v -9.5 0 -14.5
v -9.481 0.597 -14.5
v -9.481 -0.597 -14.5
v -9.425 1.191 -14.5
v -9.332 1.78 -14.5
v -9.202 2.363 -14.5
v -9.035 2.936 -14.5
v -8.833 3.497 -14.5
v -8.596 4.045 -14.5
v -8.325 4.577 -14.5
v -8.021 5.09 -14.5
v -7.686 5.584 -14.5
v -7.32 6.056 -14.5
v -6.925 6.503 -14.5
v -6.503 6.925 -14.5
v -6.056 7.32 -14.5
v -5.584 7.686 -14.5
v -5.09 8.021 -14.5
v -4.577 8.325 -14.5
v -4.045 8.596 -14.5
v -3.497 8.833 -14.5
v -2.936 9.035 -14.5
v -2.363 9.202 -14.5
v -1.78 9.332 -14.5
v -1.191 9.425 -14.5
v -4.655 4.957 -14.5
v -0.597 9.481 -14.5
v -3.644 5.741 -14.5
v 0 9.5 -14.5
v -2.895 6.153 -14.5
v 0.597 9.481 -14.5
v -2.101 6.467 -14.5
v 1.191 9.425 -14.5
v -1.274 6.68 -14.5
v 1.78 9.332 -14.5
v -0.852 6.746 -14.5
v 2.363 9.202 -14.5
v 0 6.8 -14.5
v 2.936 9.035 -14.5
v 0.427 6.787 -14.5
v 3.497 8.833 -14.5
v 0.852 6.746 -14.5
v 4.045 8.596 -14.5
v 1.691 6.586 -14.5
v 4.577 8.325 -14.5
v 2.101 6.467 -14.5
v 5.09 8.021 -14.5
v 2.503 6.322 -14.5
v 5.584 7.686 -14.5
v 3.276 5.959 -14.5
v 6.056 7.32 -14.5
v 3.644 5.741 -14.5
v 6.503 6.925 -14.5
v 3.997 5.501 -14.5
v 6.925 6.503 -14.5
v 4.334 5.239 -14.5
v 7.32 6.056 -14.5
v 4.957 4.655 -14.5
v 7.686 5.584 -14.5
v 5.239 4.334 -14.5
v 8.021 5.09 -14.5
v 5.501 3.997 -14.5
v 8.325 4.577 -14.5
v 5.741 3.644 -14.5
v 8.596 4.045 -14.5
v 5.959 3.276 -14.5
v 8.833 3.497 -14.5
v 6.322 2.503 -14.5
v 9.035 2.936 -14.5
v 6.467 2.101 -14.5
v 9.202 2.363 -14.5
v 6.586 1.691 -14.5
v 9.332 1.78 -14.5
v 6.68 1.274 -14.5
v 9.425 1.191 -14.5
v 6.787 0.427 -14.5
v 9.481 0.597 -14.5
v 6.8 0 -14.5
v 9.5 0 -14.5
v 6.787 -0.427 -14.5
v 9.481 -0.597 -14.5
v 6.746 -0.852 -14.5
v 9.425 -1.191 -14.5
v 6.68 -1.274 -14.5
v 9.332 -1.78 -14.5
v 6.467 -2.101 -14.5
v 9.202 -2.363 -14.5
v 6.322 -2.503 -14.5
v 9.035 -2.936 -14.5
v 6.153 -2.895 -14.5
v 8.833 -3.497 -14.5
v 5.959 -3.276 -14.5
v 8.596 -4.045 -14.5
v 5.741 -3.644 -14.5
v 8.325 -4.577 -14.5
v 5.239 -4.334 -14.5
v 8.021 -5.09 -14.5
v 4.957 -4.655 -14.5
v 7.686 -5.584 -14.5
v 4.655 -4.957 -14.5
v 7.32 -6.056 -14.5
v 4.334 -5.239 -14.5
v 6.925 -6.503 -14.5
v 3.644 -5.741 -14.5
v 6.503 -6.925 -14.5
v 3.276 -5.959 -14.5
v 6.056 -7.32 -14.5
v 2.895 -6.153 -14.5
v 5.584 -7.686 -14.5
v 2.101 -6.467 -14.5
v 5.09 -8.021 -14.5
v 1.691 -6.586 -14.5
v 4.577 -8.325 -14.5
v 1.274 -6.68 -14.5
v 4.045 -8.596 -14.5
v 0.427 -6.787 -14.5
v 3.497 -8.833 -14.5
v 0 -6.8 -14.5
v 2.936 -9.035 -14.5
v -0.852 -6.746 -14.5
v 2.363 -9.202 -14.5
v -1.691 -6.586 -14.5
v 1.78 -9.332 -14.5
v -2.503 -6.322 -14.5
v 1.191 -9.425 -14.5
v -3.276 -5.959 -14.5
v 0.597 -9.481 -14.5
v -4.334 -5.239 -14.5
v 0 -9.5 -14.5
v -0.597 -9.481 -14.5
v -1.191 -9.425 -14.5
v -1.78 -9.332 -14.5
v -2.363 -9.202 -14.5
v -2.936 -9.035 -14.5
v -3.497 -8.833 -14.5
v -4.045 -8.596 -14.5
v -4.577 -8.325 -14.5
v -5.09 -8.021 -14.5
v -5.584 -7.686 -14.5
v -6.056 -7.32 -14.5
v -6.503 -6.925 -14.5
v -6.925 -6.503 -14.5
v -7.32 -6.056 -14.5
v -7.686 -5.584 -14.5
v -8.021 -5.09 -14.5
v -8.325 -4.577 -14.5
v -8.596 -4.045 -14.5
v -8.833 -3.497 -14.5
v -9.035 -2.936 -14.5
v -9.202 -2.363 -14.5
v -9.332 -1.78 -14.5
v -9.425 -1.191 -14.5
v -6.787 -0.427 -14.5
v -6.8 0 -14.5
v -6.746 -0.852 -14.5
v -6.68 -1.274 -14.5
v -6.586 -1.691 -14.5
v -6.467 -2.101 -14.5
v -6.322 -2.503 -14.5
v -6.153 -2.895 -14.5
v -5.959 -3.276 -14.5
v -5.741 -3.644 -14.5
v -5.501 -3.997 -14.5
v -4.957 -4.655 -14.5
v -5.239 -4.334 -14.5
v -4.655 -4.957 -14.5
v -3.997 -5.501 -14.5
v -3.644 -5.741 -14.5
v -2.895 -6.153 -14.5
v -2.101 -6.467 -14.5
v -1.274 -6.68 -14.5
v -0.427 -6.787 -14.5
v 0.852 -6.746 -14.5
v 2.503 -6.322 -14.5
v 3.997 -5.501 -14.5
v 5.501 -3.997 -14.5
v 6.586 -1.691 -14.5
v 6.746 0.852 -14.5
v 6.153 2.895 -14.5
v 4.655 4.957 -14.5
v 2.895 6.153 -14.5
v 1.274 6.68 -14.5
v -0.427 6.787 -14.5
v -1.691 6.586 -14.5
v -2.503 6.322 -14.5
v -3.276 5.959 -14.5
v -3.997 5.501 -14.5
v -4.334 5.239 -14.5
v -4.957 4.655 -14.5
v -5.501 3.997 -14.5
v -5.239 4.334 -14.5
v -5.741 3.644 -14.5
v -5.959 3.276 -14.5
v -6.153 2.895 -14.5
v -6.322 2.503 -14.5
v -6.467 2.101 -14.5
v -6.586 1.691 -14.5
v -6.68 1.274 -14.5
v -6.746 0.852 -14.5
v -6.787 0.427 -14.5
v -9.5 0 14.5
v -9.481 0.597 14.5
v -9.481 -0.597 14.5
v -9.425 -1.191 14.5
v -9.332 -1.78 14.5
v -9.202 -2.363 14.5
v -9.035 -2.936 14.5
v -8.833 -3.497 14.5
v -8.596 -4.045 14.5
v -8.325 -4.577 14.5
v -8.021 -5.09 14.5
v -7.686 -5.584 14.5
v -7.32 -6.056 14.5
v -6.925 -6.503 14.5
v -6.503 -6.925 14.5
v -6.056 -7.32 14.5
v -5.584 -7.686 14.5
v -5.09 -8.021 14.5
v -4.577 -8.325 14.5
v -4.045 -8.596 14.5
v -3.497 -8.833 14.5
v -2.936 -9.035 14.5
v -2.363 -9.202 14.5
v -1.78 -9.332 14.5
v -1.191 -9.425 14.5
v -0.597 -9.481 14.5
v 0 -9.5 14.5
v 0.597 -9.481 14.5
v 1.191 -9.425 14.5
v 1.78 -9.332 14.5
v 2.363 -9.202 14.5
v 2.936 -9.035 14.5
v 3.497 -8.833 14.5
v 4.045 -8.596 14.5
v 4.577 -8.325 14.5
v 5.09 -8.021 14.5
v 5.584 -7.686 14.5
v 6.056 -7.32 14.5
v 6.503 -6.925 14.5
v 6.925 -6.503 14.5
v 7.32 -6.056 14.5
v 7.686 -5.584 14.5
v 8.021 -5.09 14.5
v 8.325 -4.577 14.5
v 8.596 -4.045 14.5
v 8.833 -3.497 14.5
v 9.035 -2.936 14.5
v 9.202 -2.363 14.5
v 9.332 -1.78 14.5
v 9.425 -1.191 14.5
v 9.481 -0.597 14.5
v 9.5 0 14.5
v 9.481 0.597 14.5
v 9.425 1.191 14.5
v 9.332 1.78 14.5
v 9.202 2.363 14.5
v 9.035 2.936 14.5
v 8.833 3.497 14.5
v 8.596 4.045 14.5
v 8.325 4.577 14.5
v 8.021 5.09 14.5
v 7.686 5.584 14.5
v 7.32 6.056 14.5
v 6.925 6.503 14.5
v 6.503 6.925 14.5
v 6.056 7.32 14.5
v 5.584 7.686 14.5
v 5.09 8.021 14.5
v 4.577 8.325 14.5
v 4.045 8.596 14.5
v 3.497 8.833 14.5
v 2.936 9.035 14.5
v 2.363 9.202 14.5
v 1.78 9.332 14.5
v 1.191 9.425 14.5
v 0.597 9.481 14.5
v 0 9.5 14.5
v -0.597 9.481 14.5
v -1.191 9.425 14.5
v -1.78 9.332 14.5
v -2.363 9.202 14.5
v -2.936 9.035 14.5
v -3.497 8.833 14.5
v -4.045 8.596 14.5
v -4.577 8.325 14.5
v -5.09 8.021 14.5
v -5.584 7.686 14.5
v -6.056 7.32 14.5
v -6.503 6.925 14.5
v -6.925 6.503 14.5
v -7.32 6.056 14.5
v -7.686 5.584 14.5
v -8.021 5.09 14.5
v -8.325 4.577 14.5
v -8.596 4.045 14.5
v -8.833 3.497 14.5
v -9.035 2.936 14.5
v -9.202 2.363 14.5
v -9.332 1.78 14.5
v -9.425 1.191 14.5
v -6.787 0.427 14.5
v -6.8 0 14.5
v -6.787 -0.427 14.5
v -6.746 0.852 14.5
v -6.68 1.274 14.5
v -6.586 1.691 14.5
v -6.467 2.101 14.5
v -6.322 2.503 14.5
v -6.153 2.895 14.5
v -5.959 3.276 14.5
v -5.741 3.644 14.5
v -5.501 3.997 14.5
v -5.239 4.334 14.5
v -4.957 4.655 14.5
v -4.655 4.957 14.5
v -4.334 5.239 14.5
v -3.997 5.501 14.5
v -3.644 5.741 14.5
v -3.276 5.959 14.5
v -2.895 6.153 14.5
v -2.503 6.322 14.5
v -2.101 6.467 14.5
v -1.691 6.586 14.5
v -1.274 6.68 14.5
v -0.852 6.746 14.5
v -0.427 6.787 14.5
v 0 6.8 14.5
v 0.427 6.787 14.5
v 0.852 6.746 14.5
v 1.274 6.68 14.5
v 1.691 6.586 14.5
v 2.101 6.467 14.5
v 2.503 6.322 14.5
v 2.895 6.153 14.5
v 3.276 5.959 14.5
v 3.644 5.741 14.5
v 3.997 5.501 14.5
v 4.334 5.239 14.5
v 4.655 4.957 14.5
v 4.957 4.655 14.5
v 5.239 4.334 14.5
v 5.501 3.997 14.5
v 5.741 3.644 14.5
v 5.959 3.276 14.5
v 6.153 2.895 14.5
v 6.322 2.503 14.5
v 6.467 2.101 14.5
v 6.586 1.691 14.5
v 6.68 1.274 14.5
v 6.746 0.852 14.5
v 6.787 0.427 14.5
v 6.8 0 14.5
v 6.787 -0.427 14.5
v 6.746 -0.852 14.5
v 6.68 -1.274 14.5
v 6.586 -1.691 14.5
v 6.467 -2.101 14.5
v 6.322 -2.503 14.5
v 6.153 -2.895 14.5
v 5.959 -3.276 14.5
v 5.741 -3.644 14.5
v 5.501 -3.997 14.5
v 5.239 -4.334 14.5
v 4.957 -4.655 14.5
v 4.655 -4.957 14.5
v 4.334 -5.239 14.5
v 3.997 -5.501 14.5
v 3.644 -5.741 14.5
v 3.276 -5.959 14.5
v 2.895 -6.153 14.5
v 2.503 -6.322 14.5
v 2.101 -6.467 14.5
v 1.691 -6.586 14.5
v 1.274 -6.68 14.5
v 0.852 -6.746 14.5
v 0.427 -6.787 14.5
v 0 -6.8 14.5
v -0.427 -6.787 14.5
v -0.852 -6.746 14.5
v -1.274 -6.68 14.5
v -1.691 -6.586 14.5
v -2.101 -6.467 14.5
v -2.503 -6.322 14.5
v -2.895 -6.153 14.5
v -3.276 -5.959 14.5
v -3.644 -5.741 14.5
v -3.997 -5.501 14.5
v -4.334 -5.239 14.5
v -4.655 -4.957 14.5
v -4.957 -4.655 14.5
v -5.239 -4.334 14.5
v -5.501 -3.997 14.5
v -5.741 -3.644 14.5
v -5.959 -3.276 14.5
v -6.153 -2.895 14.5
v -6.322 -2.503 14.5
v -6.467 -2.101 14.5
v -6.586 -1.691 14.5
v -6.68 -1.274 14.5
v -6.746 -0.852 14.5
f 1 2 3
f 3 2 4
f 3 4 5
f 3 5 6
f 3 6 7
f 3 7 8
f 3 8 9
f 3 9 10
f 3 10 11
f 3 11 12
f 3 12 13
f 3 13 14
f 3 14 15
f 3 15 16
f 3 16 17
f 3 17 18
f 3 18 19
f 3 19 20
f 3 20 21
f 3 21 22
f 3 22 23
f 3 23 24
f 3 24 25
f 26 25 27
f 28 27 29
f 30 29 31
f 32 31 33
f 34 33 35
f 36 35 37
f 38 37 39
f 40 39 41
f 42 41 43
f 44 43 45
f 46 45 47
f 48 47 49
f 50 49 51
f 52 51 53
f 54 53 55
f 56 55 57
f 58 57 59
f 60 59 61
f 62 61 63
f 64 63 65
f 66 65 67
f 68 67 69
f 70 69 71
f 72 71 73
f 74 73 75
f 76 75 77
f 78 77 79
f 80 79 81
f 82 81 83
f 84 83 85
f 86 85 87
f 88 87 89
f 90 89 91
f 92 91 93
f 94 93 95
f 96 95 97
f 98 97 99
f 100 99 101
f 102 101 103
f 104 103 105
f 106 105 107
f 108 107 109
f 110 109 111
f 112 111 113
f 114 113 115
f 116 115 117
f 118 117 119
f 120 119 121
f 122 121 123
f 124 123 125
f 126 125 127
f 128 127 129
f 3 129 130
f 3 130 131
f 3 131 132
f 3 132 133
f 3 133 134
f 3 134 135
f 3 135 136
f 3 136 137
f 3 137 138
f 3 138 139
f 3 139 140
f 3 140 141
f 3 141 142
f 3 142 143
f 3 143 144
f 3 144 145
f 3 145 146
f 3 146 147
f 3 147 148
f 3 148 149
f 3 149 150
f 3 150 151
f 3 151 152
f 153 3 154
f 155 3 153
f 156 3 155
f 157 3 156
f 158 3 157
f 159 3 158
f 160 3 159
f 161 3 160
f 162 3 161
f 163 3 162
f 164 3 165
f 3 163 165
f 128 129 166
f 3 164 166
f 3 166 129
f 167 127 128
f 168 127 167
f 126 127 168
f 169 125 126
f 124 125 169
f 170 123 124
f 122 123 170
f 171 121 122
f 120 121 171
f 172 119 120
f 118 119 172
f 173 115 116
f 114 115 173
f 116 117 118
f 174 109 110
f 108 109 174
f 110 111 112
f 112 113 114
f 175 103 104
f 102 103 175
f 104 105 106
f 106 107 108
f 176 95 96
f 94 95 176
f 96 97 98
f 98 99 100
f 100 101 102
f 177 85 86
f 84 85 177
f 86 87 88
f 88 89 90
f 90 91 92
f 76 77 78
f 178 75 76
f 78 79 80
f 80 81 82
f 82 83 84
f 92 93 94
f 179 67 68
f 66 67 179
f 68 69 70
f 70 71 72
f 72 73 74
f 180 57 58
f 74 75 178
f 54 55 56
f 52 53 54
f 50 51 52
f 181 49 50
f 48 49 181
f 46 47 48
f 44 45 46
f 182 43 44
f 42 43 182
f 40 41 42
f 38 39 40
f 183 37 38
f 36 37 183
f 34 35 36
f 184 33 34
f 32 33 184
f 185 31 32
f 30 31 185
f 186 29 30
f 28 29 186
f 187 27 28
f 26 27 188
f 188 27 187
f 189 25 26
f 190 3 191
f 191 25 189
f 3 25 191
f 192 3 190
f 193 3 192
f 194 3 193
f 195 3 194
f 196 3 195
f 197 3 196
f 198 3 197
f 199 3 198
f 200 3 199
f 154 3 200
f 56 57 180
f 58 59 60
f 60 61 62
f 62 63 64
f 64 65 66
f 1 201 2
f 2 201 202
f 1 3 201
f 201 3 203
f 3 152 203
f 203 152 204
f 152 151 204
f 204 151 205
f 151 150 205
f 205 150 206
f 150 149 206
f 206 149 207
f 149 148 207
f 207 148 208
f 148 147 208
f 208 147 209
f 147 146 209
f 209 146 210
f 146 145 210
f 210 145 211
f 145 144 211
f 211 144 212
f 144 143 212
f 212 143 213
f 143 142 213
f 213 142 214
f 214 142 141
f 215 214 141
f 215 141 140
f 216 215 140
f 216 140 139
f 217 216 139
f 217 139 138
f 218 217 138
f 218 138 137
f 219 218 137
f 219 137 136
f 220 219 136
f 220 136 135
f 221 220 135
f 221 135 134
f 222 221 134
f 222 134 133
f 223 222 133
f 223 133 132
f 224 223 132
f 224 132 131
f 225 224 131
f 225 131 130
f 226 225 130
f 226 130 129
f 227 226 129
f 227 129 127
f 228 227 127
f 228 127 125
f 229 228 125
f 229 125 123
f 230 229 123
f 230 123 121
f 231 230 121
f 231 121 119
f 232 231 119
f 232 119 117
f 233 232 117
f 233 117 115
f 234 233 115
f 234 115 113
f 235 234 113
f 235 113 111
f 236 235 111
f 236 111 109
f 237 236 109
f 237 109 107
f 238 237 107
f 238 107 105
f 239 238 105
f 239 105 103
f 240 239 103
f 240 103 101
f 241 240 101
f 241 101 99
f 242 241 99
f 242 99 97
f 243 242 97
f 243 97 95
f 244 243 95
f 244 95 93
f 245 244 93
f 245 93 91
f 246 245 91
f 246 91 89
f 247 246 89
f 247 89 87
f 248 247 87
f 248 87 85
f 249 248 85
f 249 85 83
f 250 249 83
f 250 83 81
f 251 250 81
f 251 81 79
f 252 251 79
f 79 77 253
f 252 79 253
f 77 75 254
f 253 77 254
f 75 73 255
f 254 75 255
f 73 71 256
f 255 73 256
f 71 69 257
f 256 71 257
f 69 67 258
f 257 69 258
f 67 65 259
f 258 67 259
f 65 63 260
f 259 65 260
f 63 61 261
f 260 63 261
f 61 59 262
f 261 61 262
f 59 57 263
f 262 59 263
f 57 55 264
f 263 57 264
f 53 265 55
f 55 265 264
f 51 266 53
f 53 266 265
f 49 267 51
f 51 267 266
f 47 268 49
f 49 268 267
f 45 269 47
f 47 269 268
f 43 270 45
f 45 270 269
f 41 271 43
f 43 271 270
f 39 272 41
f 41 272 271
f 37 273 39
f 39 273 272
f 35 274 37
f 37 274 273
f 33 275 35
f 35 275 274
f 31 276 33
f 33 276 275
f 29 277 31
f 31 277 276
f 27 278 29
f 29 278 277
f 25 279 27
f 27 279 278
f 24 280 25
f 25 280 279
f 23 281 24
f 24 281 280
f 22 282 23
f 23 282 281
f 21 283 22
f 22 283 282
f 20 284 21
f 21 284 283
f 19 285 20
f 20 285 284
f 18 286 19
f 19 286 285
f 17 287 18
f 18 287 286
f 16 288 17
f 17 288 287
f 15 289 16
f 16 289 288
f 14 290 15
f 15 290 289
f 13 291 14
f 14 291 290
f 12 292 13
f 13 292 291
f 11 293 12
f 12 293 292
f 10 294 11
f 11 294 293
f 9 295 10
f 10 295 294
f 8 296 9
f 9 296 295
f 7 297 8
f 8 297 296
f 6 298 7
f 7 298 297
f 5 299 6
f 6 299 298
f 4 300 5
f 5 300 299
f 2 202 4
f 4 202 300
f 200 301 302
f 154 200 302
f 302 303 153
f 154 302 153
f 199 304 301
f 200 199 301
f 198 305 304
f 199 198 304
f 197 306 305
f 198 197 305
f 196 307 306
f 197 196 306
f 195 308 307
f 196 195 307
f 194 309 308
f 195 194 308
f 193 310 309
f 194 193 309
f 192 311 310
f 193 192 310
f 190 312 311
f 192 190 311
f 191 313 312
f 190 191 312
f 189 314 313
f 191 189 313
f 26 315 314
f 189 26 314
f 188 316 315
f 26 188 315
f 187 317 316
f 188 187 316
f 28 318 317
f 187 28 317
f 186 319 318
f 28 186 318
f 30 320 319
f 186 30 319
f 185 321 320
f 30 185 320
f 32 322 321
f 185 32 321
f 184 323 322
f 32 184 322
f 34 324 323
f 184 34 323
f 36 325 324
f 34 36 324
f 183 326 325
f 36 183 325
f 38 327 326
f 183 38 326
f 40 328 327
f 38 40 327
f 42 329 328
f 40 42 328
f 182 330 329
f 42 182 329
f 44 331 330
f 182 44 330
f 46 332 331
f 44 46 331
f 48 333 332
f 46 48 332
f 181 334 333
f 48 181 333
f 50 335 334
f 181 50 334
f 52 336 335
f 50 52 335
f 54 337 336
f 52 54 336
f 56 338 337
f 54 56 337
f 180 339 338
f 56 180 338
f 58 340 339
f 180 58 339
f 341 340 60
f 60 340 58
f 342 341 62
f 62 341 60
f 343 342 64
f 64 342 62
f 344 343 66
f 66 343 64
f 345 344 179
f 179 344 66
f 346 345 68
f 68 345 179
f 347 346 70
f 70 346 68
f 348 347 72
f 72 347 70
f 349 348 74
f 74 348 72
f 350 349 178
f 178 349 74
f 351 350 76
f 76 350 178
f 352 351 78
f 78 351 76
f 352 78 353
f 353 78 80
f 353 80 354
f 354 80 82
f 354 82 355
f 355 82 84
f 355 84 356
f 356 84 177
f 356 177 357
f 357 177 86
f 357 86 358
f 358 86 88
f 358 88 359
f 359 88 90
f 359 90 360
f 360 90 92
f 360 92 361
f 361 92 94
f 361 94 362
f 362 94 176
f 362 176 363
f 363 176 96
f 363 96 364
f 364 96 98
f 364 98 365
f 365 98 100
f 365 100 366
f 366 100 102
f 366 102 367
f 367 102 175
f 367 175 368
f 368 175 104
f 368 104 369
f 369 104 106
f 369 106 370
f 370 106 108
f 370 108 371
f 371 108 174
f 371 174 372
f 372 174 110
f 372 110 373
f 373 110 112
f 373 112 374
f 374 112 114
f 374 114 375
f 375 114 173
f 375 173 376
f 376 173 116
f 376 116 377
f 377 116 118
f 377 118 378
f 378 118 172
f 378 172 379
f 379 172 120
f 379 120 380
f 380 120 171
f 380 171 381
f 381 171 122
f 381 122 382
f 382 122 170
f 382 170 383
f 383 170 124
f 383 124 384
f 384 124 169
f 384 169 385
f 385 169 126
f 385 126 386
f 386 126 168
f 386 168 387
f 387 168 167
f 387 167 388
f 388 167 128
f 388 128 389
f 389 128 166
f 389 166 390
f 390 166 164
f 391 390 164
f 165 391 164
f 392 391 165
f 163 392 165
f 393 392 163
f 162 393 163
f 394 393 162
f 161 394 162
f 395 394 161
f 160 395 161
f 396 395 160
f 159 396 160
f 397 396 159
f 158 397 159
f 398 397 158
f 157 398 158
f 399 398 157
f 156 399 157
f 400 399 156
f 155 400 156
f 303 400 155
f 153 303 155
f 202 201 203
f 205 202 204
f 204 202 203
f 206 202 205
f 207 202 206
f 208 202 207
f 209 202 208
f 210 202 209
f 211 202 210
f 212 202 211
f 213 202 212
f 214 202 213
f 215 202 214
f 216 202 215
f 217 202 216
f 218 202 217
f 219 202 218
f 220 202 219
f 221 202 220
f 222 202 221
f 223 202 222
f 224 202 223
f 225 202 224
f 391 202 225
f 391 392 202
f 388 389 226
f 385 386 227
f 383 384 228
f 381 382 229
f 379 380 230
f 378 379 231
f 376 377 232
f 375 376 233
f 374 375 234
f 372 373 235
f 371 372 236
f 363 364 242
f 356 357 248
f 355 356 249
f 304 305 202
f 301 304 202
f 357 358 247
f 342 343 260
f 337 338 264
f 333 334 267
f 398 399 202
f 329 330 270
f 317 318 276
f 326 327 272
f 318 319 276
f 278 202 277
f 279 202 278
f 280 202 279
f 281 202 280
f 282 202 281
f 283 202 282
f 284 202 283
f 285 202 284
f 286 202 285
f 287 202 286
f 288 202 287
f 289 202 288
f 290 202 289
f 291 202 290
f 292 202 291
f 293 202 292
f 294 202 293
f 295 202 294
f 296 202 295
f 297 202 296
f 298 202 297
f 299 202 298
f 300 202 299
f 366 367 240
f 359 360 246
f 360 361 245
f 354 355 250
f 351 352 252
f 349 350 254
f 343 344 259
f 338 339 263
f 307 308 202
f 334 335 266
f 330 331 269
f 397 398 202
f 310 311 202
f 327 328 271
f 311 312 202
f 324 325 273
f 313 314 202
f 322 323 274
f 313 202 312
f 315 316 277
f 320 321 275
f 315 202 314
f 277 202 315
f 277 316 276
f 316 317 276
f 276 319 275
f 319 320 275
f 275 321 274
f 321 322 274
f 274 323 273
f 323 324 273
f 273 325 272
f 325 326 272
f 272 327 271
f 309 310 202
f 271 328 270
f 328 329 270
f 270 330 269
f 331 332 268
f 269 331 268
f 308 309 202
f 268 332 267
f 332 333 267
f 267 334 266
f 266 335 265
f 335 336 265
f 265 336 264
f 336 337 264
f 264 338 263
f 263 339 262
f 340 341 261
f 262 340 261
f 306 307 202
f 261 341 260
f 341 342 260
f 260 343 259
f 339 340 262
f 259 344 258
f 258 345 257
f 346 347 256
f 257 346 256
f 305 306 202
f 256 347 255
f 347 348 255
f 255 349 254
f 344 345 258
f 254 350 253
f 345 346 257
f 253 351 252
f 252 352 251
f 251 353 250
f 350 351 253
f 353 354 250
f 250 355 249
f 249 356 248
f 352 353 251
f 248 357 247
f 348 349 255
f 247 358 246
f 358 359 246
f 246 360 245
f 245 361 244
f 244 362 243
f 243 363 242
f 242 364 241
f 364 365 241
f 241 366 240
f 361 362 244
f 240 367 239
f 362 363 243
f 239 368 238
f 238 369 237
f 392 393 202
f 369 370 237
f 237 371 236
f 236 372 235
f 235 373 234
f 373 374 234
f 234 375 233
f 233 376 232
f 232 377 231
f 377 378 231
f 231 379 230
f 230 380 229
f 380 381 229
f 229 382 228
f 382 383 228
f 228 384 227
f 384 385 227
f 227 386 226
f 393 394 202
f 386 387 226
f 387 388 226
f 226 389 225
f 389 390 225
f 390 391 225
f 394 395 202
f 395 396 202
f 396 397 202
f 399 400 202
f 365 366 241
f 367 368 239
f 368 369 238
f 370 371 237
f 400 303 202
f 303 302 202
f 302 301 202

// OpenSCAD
$fn=100;
bushing_diameter = 13;
bushing_length = 10;

bearing_length = 29;
bearing_diameter = 19;
rod_diameter =6;

difference()
{
	difference()
	{
		cylinder(r=bearing_diameter/2 ,h=bearing_length,center=true);
		//translate([0,0,( bearing_length/2)- bushing_length/2] ) cylinder(r=bushing_diameter, h=bushing_length,center=true);
		//translate([0,0,-( bearing_length/2)+ bushing_length/2] ) cylinder(r=bushing_diameter, h=bushing_length,center=true);
	}
	cylinder(r=(bushing_diameter/2)+0.3, h=bearing_length +1,center=true);
}
